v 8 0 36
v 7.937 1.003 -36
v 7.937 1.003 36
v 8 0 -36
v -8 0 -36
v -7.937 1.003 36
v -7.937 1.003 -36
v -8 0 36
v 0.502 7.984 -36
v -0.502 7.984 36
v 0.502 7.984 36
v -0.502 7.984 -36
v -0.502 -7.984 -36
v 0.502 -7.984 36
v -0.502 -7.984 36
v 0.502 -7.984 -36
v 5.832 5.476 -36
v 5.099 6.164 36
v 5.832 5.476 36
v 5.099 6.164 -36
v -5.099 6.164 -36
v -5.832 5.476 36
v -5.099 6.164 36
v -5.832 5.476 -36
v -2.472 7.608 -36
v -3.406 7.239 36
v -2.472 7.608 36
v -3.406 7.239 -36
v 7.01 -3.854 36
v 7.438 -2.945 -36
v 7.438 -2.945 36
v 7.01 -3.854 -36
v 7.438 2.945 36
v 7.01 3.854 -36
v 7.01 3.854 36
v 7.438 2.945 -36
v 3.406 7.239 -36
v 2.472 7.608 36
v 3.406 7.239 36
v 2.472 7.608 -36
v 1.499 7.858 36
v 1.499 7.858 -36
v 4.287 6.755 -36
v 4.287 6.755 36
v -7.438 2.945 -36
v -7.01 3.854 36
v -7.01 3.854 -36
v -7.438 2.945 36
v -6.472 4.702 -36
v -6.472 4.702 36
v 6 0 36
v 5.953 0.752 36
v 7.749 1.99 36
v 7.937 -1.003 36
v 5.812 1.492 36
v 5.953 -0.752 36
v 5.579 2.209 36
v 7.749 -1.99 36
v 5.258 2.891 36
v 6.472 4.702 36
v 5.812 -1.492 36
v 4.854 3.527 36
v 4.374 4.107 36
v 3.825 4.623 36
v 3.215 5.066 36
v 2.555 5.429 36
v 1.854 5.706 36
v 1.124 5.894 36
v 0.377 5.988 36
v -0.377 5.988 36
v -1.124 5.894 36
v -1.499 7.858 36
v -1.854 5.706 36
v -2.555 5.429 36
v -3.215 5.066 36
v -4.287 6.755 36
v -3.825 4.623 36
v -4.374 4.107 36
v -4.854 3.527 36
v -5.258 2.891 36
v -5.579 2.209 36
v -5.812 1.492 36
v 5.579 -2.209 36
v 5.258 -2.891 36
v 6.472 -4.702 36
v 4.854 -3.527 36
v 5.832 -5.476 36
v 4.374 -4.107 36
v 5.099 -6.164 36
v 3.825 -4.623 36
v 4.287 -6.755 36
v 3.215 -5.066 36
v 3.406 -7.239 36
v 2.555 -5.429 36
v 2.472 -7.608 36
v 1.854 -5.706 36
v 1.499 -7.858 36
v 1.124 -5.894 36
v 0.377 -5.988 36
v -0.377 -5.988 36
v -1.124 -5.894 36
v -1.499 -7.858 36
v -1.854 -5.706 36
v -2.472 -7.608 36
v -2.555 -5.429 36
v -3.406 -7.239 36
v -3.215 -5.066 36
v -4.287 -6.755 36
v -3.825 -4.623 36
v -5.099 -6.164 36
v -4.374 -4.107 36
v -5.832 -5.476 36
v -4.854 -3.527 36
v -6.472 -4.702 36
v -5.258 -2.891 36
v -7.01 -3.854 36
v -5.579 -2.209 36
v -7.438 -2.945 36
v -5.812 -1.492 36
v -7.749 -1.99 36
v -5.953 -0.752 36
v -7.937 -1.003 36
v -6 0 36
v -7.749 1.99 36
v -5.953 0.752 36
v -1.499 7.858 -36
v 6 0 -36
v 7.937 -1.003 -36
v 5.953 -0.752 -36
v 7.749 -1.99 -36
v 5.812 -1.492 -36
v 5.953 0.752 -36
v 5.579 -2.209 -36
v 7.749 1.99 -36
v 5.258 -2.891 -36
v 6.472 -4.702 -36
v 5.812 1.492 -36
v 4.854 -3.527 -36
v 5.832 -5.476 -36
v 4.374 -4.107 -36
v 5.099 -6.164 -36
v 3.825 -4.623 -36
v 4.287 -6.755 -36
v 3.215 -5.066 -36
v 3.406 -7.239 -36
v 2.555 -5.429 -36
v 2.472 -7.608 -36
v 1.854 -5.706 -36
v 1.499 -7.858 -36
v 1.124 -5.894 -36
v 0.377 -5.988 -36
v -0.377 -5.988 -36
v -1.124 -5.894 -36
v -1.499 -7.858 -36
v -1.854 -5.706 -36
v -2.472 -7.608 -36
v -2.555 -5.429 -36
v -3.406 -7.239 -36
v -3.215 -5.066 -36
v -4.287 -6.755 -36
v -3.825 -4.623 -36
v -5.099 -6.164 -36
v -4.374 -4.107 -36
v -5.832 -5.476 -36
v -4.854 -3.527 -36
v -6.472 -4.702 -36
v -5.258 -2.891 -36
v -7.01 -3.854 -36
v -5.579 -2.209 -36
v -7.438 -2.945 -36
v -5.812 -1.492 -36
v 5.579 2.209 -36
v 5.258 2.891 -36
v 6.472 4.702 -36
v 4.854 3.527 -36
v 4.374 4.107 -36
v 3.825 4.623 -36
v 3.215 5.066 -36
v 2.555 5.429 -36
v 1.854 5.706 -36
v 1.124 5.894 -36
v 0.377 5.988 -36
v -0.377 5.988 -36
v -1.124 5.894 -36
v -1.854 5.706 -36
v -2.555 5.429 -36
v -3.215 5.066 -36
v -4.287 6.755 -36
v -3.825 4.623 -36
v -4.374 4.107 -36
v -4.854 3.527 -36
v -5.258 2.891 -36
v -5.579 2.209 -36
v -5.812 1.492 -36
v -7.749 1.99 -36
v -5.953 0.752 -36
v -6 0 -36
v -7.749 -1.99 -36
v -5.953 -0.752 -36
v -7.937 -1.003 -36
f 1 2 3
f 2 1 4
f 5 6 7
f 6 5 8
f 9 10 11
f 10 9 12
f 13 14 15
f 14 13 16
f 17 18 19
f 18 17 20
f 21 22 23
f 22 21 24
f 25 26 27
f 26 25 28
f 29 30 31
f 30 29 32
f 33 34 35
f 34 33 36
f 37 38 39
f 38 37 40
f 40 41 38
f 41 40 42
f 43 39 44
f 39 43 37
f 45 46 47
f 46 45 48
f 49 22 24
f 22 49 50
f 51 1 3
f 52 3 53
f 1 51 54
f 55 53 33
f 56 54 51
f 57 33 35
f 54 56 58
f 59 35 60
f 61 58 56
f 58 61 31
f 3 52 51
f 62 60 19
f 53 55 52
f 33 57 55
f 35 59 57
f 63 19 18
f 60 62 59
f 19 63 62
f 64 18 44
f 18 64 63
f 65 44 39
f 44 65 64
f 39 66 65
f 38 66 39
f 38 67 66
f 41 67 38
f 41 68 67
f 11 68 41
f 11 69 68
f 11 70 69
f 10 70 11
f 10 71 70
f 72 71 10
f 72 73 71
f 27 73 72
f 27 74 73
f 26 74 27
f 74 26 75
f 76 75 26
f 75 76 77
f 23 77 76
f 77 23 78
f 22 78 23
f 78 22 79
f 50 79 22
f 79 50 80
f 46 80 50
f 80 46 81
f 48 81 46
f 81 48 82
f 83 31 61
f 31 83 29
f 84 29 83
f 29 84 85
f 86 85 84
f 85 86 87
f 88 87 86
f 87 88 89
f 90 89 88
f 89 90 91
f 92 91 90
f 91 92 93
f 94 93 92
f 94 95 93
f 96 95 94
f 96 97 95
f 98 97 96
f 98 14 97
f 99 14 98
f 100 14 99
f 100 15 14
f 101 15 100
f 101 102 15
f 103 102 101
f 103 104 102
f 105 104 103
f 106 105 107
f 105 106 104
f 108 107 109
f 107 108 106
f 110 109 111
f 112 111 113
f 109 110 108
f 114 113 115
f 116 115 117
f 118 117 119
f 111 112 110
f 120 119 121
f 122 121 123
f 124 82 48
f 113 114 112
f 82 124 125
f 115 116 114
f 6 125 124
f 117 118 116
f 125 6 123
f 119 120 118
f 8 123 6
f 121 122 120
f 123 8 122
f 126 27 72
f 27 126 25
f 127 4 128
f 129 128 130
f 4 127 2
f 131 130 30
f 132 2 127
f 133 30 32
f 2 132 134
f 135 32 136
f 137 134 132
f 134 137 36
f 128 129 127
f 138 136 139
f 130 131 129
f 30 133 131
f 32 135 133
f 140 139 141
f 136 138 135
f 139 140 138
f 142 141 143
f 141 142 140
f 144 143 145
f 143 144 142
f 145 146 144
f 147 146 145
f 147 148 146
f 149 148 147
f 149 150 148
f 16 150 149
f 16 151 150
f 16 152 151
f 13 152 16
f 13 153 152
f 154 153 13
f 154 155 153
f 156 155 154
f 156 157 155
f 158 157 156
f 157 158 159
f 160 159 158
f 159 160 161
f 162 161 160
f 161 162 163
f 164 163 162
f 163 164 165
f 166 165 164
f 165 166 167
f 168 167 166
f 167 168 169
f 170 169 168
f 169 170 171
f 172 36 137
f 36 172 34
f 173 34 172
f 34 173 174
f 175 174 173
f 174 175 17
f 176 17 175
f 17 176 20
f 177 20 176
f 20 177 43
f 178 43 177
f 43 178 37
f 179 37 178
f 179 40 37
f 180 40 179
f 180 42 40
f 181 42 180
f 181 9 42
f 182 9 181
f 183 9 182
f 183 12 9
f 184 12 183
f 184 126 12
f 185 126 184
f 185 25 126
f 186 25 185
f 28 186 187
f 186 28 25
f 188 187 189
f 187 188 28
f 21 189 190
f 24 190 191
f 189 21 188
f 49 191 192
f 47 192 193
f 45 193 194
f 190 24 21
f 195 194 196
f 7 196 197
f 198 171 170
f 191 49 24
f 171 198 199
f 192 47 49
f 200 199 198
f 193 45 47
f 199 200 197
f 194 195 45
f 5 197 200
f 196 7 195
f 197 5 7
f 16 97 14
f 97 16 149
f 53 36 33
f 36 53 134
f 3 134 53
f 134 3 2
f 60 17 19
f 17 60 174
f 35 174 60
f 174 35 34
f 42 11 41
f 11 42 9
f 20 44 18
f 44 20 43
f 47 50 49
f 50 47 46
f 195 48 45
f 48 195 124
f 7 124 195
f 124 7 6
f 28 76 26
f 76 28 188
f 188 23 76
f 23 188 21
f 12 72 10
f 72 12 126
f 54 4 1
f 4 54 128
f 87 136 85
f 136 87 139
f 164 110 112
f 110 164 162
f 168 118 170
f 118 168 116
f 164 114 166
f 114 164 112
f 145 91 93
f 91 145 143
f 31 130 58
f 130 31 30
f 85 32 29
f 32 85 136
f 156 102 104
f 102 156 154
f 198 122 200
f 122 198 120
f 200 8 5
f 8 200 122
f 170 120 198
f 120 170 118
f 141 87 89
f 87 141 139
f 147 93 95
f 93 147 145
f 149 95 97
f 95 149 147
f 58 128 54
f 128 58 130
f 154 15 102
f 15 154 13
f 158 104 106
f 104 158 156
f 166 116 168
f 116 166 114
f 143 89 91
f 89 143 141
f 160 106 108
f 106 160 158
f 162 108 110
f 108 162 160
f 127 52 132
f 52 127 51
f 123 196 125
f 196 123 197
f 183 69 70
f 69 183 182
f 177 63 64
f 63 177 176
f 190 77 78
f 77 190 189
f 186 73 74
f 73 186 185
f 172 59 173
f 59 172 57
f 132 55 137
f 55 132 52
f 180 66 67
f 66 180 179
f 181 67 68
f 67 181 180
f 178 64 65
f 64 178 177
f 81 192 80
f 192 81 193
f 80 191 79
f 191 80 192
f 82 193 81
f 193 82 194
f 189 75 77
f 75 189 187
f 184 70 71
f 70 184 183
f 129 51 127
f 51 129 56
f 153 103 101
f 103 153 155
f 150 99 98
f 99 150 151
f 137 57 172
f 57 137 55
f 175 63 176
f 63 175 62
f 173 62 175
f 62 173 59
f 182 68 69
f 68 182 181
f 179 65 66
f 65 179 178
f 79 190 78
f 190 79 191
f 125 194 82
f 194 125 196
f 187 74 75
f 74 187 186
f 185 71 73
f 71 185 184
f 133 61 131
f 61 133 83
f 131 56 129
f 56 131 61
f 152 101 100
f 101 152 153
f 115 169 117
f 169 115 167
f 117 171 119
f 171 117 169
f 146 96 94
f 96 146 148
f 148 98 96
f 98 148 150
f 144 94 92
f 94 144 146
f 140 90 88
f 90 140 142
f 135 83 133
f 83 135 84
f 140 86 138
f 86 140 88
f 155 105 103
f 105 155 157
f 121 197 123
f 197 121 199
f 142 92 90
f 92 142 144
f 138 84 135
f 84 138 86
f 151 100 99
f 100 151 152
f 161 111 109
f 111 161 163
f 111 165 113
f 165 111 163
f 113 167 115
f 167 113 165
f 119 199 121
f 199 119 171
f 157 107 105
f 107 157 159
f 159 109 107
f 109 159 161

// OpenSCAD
$fn = 50;


difference() {
	union() {
		translate(v = [0, 0, -36.0000000000]) {
			cylinder(h = 72, r = 8.0000000000);
		}
	}
	union() {
		translate(v = [0, 0, -100.0000000000]) {
			cylinder(h = 200, r = 6);
		}
	}
}
